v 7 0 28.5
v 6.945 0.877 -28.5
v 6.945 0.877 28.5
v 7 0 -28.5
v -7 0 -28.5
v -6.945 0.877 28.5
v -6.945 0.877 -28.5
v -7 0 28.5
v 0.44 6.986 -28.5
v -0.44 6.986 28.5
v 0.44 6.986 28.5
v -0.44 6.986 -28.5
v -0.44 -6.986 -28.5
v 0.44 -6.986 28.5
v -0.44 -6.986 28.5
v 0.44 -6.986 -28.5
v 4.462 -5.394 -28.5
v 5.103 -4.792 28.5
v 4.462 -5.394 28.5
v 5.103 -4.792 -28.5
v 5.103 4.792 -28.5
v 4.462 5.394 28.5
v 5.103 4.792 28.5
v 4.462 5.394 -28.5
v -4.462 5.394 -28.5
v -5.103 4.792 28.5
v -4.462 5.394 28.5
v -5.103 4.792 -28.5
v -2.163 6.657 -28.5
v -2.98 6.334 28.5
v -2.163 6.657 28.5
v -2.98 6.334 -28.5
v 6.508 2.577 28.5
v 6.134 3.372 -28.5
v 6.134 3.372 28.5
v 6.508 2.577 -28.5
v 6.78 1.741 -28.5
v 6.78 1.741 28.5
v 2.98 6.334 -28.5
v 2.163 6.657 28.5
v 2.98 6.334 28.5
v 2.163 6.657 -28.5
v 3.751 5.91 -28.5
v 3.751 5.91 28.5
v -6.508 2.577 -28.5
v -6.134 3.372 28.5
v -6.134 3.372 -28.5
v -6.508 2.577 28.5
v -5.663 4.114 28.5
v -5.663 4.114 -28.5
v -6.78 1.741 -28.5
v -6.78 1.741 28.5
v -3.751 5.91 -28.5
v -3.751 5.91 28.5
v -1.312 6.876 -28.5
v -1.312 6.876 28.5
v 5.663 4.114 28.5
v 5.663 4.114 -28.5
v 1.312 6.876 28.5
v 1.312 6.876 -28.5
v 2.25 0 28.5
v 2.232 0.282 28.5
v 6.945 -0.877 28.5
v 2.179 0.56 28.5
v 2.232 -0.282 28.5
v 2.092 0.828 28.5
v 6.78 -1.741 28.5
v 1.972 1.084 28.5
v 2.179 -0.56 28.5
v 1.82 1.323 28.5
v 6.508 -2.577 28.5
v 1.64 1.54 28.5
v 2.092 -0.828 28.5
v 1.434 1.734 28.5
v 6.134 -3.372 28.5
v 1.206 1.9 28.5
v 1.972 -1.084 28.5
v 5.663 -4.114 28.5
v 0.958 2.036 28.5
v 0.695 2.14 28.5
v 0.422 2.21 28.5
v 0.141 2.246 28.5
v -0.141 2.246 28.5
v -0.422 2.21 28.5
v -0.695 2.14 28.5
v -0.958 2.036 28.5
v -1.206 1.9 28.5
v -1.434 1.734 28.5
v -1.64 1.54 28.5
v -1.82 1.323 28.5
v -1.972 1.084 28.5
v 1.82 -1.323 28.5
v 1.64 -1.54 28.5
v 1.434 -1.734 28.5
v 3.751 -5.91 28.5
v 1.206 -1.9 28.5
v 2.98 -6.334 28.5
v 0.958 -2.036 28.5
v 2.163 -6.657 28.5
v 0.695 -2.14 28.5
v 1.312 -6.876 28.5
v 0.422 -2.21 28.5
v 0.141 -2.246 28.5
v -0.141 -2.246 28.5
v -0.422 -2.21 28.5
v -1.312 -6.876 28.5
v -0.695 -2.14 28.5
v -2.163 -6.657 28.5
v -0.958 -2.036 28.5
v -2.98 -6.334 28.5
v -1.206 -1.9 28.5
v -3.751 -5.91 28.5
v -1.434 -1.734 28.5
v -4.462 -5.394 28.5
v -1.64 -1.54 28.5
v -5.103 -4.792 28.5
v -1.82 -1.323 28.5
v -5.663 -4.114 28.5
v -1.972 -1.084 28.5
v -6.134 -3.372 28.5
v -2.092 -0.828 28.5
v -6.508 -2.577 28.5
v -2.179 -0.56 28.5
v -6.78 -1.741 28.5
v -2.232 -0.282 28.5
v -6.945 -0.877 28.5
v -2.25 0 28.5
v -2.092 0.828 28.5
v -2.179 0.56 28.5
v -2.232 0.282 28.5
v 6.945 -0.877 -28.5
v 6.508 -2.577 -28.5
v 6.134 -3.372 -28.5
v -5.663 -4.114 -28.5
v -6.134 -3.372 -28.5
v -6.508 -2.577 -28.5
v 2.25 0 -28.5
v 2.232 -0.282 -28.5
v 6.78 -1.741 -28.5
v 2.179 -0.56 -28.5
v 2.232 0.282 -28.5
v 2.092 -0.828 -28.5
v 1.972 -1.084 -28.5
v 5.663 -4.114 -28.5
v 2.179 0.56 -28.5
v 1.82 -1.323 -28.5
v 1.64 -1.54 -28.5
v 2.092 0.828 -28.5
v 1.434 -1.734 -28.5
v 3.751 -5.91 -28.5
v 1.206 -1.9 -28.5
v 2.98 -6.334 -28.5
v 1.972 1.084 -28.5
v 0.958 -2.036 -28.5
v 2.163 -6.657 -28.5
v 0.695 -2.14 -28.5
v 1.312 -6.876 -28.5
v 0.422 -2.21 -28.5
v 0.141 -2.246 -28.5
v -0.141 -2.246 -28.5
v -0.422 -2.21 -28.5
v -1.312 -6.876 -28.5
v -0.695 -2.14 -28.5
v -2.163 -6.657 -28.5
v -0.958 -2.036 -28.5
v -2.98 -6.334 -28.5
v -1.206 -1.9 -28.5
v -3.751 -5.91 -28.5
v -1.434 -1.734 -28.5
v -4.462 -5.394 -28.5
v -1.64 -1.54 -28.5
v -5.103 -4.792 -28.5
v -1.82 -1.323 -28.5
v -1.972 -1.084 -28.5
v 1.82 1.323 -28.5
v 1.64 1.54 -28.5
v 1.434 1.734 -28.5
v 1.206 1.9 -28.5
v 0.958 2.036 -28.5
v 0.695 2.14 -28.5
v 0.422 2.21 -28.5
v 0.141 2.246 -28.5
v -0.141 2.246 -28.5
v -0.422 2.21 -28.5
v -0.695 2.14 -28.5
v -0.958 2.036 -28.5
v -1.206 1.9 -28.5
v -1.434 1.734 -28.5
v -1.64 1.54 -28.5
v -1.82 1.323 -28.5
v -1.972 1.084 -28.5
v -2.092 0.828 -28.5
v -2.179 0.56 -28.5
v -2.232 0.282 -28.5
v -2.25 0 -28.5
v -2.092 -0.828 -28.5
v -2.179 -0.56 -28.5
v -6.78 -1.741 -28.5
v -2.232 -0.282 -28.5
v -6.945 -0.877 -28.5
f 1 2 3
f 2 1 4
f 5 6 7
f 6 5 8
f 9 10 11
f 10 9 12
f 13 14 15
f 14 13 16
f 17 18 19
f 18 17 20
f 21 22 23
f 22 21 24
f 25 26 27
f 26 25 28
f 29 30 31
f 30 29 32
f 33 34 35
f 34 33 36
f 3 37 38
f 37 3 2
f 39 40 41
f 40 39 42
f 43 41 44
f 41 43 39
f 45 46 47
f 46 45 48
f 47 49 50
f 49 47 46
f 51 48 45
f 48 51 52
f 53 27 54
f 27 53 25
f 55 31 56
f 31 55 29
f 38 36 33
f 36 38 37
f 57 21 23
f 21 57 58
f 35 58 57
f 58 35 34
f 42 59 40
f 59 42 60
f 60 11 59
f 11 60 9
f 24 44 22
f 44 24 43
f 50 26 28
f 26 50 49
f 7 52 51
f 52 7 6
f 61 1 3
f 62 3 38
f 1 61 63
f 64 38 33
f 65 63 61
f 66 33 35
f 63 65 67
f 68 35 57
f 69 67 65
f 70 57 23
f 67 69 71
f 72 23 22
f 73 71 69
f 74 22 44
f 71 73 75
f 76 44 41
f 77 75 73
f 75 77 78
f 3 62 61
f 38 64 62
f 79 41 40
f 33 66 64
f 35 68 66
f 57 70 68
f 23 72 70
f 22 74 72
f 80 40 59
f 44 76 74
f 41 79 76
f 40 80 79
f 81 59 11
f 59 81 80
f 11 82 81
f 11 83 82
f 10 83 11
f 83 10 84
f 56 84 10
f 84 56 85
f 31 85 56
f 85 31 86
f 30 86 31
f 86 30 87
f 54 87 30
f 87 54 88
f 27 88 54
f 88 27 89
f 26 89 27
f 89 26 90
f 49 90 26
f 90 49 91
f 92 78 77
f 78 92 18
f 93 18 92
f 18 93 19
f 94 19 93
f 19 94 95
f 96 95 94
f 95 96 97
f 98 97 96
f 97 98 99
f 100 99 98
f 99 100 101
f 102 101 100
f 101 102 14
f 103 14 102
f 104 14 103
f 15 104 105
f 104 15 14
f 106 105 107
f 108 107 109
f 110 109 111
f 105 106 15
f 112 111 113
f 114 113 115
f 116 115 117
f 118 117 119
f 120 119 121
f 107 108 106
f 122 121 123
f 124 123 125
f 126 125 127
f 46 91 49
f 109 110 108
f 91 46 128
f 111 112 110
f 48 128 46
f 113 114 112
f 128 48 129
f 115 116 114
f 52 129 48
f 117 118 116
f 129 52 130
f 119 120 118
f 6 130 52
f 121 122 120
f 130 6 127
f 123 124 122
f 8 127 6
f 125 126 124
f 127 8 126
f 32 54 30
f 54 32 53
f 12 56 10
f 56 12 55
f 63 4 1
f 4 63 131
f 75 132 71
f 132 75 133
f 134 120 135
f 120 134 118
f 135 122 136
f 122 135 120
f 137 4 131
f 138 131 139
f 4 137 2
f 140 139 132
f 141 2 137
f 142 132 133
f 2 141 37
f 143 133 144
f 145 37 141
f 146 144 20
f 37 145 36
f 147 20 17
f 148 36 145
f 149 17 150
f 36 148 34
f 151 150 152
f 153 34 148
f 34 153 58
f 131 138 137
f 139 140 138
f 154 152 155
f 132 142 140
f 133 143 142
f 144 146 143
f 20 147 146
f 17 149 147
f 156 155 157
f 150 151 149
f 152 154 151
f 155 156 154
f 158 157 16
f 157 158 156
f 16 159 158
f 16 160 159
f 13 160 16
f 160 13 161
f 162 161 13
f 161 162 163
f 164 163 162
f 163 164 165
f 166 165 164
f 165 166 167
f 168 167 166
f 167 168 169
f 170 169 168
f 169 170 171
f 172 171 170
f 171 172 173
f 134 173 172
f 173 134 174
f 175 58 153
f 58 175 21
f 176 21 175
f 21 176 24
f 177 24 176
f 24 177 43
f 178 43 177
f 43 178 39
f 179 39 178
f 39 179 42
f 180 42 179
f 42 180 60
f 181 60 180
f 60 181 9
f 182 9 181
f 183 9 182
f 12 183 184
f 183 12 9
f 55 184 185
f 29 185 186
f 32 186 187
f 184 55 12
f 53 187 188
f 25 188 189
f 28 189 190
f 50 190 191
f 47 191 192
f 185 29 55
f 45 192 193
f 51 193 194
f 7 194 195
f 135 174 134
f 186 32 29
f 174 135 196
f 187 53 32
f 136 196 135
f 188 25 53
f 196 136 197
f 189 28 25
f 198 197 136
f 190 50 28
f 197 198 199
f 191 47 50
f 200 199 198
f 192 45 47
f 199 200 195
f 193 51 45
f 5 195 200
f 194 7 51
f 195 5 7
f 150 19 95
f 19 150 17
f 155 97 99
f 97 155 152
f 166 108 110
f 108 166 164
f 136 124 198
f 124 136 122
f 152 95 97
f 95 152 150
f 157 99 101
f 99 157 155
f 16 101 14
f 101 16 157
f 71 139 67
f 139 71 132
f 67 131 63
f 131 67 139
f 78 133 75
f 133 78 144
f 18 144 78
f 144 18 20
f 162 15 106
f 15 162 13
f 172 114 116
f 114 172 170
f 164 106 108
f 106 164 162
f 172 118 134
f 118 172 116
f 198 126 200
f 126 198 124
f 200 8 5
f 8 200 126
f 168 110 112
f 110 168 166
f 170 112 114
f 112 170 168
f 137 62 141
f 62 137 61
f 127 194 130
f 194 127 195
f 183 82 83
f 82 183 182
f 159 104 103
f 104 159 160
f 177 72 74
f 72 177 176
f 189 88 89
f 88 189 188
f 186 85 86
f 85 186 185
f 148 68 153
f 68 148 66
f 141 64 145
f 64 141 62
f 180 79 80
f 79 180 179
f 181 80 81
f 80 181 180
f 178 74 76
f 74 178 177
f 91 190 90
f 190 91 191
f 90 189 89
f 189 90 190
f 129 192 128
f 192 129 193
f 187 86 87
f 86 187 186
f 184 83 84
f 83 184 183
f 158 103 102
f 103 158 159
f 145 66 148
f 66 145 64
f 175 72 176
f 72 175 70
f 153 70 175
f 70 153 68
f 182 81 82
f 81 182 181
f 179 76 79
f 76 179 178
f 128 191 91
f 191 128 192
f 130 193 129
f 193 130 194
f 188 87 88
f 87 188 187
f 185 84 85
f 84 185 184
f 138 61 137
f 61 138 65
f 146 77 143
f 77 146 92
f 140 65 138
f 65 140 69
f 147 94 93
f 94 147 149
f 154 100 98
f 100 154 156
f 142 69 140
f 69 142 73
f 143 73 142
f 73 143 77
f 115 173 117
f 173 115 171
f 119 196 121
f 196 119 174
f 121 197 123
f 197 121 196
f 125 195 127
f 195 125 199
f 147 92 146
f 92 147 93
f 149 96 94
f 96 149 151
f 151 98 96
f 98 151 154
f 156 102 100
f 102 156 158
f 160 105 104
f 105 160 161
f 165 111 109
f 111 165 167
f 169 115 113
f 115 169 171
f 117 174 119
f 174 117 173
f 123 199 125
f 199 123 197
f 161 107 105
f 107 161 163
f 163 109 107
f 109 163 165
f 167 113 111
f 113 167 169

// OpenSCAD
$fn = 50;


difference() {
	union() {
		translate(v = [0, 0, -28.5000000000]) {
			cylinder(h = 57, r = 7.0000000000);
		}
	}
	union() {
		translate(v = [0, 0, -100.0000000000]) {
			cylinder(h = 200, r = 2.2500000000);
		}
	}
}
